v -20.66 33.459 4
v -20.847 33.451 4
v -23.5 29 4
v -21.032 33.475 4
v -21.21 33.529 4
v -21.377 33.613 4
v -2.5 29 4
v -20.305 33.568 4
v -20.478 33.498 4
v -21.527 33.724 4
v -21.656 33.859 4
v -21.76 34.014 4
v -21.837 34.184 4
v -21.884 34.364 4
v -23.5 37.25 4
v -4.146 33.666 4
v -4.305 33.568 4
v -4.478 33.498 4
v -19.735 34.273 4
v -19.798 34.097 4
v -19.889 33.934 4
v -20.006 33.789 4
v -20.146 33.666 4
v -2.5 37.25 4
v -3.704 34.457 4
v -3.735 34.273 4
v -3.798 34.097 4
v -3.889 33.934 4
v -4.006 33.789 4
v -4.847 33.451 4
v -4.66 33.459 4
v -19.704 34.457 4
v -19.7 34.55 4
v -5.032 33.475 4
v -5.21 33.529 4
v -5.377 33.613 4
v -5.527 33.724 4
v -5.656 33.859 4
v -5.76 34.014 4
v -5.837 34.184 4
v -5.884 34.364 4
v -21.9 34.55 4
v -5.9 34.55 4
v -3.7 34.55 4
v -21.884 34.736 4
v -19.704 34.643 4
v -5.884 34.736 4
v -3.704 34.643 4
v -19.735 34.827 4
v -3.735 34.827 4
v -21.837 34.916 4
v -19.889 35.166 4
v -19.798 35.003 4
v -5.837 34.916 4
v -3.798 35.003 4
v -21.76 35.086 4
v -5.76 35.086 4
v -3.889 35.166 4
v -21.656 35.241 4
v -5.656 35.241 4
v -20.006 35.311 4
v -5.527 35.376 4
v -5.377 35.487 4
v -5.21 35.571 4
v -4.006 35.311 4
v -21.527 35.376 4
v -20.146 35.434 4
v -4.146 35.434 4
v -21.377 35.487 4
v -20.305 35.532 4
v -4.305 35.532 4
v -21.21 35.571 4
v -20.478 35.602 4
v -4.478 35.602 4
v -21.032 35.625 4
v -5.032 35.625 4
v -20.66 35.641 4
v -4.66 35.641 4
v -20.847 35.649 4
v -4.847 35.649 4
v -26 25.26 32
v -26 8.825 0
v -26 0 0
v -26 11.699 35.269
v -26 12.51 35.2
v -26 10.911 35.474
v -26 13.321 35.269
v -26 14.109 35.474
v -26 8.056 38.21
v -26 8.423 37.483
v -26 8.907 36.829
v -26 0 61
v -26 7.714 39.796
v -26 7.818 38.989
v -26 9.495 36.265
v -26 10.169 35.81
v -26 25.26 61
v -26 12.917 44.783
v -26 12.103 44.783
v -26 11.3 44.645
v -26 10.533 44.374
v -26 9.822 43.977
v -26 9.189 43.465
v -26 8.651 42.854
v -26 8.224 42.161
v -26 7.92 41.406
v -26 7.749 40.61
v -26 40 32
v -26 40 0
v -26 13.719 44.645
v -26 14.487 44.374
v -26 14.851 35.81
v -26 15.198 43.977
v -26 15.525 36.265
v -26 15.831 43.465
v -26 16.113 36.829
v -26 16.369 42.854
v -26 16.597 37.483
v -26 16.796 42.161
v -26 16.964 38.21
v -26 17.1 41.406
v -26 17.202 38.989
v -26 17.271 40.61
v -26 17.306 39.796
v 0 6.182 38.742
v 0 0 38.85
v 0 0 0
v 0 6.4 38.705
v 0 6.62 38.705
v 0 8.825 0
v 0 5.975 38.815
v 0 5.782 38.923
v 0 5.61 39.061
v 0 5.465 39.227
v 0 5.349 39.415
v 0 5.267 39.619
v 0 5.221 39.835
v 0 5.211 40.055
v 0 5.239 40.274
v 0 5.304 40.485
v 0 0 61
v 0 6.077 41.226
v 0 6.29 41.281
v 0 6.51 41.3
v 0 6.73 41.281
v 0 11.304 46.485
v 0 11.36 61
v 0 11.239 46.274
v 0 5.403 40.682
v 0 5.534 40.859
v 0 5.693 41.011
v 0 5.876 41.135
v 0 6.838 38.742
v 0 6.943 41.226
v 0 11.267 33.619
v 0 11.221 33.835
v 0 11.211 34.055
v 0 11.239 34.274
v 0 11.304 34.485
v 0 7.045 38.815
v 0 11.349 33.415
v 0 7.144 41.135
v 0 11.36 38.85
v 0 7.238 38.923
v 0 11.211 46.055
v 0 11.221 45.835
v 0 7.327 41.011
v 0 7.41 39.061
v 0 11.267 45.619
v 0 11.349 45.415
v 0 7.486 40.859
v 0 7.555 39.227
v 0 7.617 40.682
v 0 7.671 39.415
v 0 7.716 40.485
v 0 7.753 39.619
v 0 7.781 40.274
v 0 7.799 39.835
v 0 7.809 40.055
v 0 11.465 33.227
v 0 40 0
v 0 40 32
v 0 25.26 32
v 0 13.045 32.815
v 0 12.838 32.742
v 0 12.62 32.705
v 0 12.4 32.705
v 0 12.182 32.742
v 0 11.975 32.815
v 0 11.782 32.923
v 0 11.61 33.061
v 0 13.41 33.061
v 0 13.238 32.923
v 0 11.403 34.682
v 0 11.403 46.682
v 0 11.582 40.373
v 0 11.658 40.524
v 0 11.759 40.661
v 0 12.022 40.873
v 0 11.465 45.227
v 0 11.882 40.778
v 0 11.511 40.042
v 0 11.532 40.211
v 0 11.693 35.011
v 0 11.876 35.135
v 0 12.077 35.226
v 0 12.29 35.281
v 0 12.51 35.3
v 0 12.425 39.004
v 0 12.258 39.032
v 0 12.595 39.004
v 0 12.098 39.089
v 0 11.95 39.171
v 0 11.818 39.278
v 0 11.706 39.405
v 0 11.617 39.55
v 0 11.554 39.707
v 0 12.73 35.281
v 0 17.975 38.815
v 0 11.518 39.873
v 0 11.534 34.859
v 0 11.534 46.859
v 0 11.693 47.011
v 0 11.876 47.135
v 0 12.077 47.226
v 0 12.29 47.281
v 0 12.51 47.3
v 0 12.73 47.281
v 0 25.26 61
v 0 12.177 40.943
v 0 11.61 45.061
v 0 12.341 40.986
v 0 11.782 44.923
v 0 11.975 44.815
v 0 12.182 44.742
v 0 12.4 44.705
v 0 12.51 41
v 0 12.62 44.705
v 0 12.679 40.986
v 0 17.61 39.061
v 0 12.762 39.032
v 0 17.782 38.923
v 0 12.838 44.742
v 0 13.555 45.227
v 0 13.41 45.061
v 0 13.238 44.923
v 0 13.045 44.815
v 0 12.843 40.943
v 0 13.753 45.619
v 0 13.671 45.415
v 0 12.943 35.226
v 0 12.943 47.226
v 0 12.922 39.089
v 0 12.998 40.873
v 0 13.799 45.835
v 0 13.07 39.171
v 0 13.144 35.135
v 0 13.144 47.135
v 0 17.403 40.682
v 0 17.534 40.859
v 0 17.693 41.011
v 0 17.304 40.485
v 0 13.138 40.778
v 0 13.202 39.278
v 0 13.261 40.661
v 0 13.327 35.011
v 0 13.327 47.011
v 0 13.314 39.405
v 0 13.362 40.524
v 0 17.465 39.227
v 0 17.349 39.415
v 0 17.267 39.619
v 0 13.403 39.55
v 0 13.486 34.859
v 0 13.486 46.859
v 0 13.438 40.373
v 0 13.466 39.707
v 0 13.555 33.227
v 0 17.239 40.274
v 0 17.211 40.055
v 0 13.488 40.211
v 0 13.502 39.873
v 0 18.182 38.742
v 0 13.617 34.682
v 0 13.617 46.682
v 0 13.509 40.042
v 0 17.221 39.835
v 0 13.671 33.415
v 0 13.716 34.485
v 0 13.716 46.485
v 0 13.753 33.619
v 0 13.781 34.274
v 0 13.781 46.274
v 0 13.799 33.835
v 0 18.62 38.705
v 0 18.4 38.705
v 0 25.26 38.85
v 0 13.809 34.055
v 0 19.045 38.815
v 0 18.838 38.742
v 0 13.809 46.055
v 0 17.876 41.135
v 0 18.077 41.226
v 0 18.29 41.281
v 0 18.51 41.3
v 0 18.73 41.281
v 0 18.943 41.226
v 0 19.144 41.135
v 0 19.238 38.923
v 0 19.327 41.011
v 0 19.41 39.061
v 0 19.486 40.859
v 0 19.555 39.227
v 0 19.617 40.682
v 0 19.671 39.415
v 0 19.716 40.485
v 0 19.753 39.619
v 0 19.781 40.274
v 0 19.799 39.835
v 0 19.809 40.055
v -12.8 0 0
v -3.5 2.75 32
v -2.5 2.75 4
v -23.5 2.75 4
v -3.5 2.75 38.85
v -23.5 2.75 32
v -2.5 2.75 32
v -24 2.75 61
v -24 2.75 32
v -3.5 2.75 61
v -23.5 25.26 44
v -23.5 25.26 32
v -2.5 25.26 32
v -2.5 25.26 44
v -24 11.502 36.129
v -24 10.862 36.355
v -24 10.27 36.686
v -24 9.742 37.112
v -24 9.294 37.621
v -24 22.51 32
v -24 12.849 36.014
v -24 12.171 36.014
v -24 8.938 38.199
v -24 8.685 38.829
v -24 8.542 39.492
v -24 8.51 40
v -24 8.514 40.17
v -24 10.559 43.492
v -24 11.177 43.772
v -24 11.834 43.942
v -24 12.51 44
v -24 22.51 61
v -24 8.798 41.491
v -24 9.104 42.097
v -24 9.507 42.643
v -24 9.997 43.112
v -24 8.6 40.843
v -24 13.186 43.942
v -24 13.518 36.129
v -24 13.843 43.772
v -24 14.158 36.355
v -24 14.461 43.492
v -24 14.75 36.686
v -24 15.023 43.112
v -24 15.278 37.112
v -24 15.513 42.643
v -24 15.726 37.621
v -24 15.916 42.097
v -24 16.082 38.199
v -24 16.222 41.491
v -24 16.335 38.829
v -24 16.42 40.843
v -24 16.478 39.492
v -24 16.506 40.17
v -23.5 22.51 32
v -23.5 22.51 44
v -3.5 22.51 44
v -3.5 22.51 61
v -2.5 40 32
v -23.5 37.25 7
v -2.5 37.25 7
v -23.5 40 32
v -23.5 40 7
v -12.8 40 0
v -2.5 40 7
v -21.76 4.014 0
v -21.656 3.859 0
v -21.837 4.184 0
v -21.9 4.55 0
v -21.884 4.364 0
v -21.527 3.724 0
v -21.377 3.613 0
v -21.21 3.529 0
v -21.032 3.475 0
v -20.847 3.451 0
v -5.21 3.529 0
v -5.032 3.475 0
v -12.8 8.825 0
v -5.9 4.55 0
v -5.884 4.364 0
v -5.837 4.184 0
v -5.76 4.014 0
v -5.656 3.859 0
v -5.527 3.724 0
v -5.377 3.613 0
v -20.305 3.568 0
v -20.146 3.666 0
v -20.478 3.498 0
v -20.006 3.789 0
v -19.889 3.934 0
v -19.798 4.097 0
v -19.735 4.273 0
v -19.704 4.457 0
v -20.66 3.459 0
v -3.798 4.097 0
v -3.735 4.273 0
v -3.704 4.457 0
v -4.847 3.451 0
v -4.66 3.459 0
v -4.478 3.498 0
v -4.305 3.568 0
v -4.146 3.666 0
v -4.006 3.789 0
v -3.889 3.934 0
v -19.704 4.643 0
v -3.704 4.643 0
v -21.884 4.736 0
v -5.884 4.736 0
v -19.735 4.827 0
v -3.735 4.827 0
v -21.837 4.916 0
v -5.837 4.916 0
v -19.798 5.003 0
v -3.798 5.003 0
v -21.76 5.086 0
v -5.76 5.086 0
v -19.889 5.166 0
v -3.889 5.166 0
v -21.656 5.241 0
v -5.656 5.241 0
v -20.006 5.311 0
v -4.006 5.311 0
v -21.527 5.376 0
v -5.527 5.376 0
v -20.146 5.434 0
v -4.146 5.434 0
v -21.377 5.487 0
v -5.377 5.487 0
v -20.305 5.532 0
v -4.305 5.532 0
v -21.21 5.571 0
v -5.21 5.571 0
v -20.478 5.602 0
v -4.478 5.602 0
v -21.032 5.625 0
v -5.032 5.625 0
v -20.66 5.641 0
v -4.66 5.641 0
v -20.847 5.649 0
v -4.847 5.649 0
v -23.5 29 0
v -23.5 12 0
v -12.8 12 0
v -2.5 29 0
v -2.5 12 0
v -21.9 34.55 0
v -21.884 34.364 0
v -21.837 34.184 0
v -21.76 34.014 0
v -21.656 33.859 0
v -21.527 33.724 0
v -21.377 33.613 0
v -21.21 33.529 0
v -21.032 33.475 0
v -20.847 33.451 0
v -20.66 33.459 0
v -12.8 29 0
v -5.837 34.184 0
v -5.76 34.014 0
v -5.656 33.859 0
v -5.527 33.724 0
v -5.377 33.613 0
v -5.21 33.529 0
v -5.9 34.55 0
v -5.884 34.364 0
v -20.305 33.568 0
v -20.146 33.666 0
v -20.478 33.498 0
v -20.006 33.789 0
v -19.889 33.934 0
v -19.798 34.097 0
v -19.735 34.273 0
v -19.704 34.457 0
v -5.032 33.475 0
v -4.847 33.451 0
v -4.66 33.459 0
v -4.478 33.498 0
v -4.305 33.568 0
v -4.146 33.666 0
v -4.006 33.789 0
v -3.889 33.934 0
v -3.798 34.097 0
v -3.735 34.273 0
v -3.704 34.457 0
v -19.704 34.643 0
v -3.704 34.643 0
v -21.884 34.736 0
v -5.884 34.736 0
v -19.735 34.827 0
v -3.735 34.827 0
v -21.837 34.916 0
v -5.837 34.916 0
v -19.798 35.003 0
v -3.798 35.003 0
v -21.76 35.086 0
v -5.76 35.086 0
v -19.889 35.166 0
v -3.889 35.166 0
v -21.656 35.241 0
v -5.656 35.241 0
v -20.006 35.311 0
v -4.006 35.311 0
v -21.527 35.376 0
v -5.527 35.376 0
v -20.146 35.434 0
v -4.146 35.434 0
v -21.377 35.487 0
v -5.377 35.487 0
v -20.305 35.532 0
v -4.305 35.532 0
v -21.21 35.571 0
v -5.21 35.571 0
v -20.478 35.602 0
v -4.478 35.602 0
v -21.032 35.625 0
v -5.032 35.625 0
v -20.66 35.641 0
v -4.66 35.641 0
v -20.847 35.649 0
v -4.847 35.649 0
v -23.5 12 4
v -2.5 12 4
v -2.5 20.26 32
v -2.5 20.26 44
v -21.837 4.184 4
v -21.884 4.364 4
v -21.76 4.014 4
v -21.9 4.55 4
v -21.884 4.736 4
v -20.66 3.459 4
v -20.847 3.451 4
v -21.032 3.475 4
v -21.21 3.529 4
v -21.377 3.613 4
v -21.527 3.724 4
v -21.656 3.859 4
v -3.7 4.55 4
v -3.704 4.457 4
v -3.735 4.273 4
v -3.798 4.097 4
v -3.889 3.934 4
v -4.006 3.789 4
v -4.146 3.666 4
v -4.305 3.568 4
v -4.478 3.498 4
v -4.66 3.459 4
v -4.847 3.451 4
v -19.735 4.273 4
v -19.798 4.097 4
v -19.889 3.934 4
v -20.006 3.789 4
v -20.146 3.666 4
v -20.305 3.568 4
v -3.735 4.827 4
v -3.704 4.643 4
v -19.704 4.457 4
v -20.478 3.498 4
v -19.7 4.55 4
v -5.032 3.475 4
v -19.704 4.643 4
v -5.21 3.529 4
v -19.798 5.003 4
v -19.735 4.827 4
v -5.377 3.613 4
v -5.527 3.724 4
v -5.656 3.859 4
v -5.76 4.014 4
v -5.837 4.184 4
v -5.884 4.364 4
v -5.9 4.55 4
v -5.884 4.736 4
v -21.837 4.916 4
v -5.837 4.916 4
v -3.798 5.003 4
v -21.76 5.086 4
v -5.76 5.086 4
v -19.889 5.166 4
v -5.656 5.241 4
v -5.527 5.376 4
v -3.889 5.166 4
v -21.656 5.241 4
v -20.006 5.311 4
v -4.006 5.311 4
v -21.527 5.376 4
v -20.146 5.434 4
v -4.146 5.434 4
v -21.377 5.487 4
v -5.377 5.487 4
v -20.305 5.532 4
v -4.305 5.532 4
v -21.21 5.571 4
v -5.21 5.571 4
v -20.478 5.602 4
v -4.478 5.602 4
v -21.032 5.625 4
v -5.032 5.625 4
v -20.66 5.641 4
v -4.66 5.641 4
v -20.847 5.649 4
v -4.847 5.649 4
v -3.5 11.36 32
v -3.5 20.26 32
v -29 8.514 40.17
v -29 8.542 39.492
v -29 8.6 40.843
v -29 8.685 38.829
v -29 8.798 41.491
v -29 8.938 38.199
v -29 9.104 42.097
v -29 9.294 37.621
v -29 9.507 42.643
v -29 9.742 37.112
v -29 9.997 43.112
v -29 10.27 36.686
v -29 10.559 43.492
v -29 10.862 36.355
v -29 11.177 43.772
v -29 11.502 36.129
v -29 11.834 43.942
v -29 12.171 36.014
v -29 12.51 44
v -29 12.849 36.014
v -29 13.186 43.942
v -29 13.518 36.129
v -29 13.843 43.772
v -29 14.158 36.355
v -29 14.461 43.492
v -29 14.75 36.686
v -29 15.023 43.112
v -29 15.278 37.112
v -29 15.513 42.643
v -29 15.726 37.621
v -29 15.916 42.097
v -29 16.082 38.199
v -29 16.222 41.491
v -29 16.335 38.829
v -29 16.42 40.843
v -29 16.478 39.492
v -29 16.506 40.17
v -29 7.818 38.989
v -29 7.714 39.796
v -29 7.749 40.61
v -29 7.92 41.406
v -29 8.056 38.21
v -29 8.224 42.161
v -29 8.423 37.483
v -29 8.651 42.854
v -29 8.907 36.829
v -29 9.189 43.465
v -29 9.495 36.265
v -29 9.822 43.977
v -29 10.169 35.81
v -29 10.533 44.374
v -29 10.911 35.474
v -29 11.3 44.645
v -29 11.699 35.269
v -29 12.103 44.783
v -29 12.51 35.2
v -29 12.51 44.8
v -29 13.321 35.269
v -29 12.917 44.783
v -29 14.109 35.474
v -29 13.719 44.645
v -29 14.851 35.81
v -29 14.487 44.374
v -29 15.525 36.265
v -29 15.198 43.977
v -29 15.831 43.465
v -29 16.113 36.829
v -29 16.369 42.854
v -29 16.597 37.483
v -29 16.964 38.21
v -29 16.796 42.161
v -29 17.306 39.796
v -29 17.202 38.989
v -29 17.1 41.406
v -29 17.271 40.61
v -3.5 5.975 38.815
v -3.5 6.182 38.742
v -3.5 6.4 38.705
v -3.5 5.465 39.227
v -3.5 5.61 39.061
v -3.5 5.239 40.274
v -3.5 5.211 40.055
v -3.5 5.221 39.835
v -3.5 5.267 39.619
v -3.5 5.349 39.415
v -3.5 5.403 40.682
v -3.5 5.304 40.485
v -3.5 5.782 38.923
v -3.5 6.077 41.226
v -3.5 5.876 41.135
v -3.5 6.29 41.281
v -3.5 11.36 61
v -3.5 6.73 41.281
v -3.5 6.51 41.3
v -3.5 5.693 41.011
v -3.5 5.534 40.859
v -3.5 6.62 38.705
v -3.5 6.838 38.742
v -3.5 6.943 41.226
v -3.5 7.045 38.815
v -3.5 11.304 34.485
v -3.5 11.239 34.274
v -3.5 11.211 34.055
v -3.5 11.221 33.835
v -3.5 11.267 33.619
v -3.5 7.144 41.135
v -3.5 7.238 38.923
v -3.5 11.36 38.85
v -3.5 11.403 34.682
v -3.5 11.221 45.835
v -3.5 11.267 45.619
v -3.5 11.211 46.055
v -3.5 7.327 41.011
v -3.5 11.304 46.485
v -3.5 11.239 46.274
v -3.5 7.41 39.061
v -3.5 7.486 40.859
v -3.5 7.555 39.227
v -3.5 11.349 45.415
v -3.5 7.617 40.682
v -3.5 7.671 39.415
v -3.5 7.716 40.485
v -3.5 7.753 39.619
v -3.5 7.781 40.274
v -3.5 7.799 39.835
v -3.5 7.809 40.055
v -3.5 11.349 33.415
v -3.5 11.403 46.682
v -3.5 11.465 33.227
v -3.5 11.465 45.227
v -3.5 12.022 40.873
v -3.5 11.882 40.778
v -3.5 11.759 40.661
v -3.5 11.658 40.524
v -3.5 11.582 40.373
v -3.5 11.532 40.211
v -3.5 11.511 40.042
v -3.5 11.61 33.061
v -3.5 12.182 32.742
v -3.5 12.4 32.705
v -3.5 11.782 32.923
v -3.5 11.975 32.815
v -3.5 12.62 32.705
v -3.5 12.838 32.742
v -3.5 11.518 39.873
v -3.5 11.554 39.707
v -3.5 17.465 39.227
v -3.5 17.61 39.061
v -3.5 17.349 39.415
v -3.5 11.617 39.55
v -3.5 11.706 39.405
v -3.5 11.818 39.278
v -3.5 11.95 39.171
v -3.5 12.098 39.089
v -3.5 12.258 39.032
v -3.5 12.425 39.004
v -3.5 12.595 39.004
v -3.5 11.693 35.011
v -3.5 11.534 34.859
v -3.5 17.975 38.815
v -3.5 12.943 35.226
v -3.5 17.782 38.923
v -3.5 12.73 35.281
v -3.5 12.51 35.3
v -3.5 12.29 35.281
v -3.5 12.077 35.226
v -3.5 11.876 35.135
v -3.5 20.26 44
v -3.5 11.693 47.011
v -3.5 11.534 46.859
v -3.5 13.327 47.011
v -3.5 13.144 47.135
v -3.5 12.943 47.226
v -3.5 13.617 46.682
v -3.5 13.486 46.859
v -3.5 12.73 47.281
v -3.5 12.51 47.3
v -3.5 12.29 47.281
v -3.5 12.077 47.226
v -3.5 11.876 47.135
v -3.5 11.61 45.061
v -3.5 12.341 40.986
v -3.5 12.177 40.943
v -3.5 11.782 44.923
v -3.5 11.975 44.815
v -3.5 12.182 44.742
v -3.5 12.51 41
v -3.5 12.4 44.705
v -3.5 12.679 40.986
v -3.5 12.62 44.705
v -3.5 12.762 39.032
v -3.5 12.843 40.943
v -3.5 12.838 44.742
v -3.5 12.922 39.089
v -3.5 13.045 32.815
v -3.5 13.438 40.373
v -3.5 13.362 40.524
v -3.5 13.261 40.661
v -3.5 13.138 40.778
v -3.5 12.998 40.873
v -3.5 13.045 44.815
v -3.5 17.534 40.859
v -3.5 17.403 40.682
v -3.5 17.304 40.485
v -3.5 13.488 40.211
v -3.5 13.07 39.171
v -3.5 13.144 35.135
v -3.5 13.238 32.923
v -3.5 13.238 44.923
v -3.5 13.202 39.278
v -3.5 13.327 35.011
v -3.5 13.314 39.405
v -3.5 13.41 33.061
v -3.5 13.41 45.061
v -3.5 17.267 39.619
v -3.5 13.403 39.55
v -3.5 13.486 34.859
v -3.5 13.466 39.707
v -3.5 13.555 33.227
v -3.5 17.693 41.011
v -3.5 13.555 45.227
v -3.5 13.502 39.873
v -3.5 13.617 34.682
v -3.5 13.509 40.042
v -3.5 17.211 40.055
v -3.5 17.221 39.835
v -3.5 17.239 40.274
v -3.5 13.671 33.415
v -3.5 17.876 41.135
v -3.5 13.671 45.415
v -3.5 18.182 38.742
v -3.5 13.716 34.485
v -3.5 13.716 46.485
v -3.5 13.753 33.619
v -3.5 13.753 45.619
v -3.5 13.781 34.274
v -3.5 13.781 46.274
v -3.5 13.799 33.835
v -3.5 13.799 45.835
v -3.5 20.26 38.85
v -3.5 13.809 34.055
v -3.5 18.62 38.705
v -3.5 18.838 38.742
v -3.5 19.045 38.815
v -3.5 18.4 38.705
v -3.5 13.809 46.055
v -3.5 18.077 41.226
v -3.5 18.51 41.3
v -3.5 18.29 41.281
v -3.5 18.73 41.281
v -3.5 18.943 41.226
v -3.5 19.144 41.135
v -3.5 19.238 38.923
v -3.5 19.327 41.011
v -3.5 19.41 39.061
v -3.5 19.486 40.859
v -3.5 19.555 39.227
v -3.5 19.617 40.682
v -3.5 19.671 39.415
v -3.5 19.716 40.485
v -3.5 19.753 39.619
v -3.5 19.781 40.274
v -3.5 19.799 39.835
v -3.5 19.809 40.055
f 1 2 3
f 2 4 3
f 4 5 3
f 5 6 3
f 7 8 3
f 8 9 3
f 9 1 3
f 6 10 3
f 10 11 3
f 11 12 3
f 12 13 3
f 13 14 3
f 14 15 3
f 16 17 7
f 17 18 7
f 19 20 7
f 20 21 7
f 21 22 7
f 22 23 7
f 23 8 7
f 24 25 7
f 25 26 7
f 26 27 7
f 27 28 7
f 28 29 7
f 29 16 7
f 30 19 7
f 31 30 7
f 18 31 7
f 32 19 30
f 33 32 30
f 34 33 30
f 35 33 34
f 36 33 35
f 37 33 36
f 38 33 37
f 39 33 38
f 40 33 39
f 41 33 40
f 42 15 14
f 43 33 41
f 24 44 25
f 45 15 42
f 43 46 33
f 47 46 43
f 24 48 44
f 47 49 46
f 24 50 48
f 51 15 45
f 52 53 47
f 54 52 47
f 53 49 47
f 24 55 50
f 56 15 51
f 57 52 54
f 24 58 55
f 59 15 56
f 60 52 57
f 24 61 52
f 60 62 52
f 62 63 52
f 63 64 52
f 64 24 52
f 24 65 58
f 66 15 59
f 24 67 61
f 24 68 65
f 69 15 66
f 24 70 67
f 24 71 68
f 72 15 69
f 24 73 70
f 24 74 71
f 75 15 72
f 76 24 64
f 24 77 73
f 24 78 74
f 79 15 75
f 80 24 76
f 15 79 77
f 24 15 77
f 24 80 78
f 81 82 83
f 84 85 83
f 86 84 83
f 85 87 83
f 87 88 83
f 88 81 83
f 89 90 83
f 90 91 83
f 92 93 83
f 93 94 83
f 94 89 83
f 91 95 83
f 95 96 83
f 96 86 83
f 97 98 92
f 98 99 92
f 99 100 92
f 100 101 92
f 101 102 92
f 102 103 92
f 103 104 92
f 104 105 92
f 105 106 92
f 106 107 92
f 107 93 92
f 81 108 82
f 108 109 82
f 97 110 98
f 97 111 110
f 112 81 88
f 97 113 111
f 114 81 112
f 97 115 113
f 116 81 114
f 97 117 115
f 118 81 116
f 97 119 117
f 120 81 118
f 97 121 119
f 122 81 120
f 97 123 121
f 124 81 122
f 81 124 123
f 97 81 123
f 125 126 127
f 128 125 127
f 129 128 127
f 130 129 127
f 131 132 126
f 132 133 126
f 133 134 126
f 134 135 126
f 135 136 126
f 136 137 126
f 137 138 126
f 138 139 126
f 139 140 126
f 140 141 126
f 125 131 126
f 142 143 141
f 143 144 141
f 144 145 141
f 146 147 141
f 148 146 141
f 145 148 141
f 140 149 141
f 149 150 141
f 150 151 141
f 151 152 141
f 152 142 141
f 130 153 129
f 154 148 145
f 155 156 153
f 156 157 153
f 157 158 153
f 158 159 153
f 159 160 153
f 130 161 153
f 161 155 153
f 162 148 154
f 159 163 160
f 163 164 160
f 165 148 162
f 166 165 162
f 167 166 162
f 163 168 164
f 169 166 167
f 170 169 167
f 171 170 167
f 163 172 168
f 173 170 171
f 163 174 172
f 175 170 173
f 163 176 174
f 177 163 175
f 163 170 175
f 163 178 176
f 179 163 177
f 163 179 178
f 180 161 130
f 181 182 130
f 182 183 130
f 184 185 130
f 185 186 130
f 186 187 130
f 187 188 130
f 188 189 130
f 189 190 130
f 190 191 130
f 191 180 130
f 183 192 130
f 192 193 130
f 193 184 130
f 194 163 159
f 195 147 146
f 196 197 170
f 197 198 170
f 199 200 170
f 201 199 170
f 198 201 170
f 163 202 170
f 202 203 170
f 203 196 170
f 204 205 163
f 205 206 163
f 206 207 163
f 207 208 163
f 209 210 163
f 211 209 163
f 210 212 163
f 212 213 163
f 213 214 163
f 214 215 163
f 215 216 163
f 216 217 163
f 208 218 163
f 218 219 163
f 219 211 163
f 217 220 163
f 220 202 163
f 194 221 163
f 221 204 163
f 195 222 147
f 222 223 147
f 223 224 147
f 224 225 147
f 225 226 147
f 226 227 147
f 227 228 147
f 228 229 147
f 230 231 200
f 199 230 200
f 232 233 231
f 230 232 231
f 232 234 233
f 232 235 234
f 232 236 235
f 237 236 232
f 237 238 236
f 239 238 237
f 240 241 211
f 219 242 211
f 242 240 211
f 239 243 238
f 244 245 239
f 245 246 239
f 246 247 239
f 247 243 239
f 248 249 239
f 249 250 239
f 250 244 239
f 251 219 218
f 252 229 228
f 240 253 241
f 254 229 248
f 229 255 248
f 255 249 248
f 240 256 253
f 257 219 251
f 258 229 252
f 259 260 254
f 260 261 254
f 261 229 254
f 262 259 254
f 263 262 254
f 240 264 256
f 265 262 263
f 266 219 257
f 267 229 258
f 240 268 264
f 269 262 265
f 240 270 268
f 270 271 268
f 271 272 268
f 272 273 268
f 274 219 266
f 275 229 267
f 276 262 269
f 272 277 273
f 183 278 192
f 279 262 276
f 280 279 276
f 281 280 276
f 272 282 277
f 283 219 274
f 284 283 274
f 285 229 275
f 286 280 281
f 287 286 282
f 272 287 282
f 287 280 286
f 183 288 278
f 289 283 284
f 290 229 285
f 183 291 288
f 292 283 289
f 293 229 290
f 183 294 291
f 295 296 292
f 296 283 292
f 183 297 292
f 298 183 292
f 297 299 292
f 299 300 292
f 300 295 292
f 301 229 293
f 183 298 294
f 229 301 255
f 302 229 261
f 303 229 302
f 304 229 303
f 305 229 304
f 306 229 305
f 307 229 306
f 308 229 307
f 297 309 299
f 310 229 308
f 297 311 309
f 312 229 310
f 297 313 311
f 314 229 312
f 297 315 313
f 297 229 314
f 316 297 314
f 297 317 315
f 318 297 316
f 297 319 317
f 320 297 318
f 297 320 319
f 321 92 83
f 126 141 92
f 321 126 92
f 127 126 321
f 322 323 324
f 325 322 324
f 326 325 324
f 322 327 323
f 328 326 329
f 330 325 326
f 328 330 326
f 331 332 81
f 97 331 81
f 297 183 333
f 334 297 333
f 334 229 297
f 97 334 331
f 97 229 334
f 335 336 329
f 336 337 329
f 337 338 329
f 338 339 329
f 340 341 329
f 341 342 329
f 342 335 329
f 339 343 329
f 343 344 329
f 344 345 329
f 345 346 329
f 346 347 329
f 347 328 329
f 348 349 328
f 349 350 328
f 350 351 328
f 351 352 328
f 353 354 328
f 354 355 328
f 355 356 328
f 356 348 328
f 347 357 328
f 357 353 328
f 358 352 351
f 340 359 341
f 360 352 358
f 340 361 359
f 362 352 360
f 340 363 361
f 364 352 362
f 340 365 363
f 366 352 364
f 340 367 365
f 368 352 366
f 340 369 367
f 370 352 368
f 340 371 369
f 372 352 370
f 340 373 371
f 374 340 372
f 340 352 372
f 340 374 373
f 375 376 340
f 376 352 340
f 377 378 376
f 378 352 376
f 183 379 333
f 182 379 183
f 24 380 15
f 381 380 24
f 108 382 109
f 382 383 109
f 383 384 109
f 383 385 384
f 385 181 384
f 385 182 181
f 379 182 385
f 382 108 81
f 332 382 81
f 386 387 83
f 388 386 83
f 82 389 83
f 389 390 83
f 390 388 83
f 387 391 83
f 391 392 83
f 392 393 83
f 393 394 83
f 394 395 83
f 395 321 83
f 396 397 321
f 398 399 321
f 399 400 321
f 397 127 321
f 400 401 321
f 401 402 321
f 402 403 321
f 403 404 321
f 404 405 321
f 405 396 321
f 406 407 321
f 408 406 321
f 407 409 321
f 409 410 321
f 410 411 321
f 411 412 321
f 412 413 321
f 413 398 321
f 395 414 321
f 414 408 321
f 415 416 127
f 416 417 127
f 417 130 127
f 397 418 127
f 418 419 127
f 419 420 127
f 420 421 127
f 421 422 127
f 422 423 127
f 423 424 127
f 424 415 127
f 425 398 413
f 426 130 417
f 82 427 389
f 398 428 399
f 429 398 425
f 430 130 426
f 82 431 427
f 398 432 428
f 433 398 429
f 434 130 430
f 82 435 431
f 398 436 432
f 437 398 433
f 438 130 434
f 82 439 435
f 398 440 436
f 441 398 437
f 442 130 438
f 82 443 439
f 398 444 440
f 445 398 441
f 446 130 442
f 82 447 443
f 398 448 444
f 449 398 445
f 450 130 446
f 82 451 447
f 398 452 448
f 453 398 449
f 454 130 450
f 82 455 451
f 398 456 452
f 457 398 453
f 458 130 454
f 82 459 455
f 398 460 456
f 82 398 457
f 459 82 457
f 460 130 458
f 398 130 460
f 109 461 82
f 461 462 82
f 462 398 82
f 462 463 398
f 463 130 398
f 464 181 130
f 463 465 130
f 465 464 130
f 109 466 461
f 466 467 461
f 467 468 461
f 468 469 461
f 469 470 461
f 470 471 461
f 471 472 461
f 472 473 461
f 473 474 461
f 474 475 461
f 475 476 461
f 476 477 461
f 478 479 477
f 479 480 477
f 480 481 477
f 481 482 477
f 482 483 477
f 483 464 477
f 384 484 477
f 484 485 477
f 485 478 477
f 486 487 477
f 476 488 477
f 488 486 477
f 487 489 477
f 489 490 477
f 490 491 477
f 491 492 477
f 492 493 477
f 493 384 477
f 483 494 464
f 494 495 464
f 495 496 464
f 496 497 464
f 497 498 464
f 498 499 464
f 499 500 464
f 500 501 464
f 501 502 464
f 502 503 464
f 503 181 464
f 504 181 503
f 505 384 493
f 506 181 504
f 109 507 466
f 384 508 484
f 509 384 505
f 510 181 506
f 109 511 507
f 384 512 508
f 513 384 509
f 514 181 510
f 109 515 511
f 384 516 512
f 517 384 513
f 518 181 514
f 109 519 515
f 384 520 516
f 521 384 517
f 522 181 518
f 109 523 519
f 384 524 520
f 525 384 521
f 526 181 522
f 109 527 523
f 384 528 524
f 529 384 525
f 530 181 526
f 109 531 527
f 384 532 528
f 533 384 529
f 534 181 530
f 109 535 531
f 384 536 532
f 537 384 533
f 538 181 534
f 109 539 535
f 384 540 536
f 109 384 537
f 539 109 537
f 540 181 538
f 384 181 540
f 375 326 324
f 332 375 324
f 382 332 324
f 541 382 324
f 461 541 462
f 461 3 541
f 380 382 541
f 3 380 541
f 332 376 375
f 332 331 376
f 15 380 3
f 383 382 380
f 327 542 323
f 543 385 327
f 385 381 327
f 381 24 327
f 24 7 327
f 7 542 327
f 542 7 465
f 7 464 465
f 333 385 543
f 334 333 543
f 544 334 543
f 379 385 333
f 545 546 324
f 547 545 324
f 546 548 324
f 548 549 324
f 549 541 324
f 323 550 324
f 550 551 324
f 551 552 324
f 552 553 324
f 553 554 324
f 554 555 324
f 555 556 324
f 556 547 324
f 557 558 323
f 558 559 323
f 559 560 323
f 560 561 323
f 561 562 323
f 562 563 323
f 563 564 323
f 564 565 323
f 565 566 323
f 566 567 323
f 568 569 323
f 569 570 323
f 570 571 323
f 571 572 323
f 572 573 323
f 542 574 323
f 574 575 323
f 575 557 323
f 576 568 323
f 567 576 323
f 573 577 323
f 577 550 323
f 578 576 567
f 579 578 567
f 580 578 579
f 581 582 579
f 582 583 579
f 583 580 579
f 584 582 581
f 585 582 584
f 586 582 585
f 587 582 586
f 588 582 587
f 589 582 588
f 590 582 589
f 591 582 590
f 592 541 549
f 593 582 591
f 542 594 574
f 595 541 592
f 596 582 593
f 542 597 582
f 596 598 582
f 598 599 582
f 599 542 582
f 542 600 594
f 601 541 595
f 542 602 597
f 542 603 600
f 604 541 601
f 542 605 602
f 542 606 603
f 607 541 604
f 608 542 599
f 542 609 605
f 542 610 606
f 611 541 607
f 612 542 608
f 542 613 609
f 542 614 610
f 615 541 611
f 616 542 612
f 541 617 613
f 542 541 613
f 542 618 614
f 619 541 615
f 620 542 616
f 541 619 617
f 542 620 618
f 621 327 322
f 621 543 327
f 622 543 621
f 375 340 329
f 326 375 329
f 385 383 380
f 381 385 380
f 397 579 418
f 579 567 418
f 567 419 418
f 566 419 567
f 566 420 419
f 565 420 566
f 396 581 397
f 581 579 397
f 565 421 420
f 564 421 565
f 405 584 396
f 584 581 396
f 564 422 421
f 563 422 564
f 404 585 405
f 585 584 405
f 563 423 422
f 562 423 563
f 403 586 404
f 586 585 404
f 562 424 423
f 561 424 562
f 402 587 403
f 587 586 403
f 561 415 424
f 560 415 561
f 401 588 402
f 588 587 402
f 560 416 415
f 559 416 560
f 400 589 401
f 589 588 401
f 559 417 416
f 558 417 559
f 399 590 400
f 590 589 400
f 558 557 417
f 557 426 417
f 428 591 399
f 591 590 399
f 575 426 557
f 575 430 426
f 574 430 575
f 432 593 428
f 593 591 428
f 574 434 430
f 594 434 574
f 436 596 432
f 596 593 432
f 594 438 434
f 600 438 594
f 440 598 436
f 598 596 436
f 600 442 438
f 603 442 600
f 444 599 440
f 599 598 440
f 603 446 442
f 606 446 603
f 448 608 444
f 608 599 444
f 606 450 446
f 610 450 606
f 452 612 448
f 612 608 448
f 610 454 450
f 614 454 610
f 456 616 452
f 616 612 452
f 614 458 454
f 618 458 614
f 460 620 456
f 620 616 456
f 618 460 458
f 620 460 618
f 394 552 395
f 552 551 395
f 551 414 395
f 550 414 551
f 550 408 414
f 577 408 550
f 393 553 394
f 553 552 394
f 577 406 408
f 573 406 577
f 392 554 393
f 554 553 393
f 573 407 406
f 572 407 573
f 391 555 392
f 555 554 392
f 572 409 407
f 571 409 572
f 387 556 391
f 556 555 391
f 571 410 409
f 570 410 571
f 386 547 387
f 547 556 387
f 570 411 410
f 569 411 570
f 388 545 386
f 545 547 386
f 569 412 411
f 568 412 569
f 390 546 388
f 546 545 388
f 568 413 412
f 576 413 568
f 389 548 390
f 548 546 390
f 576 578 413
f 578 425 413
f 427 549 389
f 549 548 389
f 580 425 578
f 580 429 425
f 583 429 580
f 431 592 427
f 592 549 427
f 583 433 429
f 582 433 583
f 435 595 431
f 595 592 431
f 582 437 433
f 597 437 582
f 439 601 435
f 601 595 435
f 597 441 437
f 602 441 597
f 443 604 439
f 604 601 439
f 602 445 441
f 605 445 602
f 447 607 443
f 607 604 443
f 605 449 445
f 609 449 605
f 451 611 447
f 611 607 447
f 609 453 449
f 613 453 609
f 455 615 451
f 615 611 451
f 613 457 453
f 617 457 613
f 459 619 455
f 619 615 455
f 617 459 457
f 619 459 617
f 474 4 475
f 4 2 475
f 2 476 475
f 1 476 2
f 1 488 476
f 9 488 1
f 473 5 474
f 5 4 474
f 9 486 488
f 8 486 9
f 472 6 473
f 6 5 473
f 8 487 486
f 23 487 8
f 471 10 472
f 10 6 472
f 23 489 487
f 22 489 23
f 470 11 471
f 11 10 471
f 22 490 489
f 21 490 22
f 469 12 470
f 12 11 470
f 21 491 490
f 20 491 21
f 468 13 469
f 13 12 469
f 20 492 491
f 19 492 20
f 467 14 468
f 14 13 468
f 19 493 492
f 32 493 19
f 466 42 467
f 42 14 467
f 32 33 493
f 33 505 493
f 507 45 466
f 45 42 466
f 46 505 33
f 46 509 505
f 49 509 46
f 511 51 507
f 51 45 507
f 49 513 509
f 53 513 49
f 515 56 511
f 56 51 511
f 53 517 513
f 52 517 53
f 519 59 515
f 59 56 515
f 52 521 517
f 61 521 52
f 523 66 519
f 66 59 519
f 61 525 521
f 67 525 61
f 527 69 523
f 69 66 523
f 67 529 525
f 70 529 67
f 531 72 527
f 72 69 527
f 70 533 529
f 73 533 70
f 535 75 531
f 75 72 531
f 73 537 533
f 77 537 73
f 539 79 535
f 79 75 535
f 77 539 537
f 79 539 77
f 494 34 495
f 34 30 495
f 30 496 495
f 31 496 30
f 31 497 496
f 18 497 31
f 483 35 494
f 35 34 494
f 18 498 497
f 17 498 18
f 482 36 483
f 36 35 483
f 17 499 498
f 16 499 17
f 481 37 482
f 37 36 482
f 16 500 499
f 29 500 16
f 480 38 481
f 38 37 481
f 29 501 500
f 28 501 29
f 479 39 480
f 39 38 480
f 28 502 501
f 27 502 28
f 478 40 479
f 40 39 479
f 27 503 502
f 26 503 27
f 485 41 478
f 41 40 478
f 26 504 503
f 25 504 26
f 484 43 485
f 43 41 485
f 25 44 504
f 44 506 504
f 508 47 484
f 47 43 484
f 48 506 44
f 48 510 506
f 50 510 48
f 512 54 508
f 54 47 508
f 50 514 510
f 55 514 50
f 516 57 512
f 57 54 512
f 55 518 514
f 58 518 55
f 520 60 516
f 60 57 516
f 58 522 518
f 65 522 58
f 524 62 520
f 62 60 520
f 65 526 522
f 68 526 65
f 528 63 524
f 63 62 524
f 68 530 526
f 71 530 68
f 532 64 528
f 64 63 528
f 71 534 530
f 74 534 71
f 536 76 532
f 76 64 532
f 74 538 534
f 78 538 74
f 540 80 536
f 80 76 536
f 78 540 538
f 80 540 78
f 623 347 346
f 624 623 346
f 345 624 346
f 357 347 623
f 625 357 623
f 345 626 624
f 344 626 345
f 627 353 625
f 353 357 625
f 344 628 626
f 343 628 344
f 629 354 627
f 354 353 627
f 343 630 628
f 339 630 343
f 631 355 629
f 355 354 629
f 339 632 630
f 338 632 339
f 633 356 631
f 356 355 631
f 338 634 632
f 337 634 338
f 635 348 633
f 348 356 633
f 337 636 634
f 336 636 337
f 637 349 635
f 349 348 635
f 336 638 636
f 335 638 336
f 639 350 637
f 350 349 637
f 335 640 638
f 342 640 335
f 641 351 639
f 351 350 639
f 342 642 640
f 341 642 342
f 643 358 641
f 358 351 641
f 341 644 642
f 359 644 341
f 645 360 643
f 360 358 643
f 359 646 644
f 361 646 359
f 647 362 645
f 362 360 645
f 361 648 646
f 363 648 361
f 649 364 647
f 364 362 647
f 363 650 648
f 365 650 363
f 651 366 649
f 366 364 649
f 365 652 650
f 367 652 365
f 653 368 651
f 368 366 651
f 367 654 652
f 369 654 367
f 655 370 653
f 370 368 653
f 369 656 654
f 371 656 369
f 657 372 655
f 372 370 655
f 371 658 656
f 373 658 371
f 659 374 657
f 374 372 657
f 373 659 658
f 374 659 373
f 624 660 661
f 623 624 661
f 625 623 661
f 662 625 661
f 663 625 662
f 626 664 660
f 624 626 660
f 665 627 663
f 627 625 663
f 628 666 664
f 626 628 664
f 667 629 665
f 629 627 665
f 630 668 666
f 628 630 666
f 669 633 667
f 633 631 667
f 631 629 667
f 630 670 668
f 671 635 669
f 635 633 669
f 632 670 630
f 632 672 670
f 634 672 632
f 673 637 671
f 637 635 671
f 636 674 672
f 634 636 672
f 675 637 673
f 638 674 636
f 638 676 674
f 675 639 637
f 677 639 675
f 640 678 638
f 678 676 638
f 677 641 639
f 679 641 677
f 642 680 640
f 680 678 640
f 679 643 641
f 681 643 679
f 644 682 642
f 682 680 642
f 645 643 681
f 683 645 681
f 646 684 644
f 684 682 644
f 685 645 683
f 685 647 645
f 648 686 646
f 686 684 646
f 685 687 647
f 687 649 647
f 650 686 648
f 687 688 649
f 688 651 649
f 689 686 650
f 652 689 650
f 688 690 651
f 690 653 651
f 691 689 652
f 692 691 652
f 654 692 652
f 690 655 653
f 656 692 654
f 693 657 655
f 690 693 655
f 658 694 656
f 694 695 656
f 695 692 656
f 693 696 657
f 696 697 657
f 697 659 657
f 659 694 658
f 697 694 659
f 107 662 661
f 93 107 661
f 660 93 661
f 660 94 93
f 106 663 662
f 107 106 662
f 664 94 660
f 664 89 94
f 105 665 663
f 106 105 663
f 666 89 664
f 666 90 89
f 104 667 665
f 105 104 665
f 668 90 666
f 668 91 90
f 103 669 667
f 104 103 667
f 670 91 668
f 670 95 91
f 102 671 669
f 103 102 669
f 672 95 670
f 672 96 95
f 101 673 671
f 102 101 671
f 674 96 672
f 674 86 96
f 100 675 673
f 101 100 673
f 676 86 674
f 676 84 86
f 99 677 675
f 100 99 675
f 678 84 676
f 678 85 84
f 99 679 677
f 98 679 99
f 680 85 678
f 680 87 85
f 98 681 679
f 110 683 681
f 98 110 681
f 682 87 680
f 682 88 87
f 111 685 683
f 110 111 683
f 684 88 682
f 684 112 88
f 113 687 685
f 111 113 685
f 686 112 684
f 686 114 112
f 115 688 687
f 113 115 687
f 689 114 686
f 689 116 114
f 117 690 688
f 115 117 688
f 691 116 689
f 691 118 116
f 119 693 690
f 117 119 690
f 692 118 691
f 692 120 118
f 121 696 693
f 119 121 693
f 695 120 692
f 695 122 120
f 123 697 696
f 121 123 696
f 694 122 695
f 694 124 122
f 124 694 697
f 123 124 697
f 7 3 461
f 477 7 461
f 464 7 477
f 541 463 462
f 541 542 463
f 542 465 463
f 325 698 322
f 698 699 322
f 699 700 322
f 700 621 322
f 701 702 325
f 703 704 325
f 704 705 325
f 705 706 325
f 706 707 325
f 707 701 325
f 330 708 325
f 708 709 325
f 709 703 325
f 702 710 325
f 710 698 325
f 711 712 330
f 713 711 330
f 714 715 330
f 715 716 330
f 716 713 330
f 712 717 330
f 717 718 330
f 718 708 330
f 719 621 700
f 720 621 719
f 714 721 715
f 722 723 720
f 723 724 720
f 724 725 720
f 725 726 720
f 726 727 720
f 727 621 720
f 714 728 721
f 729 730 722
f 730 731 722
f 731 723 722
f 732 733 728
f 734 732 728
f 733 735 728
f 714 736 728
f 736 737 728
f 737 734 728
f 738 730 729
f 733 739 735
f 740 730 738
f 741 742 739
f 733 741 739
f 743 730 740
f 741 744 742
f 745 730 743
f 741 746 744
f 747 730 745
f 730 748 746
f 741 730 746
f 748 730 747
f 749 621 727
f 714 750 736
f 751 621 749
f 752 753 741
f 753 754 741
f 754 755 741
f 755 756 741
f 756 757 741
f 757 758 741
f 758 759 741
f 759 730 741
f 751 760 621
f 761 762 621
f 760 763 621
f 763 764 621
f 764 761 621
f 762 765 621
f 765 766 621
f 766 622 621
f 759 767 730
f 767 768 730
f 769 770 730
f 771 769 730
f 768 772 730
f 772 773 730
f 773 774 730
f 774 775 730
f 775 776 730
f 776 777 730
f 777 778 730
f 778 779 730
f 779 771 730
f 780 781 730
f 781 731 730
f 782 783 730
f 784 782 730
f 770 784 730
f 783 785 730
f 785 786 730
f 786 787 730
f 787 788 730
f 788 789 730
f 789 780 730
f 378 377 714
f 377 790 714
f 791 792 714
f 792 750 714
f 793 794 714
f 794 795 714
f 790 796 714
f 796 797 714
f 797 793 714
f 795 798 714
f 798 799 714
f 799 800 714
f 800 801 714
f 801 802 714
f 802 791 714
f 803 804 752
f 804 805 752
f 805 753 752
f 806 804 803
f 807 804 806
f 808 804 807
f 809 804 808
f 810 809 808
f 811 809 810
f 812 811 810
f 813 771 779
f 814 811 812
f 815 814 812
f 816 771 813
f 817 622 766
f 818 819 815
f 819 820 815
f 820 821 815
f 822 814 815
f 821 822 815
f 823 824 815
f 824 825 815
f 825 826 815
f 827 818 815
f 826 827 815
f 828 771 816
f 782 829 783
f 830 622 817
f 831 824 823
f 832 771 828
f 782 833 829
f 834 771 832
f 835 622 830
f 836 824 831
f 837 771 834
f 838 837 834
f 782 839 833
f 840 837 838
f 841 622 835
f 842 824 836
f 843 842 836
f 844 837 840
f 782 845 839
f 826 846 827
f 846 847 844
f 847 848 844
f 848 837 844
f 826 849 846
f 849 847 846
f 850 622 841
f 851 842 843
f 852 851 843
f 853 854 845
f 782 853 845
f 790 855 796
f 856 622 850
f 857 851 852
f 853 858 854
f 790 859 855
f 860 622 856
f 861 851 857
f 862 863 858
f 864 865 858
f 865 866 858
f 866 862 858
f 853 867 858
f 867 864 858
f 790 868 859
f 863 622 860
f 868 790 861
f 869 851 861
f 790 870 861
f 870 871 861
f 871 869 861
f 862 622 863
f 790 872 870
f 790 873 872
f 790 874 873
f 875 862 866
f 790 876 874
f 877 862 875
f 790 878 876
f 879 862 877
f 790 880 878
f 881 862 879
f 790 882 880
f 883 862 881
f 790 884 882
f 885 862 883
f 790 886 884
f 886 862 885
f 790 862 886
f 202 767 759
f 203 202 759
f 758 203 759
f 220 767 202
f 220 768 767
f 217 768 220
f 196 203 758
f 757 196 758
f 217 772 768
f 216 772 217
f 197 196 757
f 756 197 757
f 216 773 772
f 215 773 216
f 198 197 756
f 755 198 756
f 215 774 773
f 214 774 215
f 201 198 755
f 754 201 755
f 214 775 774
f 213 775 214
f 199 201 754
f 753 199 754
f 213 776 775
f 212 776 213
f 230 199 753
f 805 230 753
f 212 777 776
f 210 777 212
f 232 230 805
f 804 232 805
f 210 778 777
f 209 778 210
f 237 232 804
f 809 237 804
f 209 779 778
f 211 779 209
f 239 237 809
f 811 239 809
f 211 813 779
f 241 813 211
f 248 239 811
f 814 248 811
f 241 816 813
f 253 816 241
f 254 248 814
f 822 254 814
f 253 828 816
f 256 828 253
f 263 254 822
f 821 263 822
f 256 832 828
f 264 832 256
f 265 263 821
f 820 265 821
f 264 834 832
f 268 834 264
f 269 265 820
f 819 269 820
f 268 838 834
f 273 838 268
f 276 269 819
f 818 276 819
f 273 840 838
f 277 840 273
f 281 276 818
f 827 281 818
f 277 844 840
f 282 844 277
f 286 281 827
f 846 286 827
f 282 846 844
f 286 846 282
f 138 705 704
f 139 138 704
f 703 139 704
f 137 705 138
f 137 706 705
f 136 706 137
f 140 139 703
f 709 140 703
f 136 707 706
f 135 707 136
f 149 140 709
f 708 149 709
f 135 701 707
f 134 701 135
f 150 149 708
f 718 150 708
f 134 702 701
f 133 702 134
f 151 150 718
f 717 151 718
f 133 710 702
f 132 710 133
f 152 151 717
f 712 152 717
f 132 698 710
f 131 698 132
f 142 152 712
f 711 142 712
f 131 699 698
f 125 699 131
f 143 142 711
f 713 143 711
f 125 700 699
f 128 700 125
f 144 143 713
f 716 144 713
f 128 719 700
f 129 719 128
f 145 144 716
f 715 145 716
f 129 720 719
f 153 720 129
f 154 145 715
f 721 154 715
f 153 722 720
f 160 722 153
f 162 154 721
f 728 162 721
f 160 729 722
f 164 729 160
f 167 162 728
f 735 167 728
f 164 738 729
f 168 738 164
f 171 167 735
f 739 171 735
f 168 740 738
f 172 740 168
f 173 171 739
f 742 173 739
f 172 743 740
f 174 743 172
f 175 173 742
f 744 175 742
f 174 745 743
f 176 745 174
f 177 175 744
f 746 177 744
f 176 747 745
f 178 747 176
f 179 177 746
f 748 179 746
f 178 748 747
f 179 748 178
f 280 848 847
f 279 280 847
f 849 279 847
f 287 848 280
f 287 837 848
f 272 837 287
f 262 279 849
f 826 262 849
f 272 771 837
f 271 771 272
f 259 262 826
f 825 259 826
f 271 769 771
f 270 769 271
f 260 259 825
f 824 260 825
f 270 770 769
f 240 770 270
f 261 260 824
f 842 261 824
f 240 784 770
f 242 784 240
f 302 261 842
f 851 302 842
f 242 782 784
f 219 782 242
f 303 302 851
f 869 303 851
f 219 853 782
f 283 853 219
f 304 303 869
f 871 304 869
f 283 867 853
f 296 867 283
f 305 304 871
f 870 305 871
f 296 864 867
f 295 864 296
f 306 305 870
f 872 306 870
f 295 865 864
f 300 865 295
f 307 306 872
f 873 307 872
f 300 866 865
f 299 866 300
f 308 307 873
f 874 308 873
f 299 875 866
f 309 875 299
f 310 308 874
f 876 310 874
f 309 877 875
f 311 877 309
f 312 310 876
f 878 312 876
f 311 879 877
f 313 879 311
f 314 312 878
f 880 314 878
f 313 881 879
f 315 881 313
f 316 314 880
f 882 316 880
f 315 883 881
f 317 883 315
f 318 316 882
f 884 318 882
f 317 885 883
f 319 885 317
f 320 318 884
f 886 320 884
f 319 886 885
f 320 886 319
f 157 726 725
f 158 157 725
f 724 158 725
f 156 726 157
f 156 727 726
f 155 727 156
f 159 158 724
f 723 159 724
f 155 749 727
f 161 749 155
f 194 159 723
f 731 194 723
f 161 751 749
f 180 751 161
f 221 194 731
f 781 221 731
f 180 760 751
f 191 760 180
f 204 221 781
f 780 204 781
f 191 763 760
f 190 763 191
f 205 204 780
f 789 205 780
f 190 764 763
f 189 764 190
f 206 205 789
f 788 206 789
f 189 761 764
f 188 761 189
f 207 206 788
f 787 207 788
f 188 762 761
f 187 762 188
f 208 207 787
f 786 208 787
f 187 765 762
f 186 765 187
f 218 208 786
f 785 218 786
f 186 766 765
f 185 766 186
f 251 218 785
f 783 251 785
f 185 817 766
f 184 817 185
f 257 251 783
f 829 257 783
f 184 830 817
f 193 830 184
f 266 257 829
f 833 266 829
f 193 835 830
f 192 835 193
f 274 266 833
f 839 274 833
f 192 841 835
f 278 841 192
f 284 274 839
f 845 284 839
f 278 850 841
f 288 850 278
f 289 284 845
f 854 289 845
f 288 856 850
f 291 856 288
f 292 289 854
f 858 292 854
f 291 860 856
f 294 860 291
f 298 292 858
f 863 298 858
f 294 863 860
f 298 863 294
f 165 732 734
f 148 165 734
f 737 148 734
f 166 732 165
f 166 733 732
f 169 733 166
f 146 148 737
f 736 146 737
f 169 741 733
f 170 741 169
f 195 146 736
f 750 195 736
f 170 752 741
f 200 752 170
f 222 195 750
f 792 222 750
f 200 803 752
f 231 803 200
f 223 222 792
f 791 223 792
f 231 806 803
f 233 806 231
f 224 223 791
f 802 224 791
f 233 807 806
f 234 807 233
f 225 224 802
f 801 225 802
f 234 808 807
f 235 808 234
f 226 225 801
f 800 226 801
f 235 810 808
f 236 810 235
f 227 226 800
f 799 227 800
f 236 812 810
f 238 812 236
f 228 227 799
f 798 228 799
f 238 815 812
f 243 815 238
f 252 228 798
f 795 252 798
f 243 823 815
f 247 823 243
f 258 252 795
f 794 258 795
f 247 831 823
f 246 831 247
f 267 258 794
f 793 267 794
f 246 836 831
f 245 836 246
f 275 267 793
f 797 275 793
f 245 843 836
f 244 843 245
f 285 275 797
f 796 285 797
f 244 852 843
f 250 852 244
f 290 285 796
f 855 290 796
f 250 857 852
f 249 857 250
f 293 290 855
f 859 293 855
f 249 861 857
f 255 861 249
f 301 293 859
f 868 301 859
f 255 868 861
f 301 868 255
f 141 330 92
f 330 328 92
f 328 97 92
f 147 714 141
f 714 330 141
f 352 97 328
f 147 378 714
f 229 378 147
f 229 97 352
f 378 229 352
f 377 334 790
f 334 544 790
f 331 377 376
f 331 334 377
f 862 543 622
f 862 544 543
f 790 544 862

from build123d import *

# Parameters (mm, degrees)
SKETCH1_W               = 26
SKETCH1_H               = 40
BOSS_EXTRUDE1_DEPTH     = 32
SKETCH2_W               = 21
SKETCH2_H               = 34.5
CUT_EXTRUDE1_DEPTH      = 28
SKETCH3_W               = 26
SKETCH3_H               = 25.26
BOSS_EXTRUDE2_DEPTH     = 20
SKETCH4_W               = 22
SKETCH4_H               = 19.76
CUT_EXTRUDE2_DEPTH      = 20
SKETCH5_W               = 21
SKETCH5_H               = 2.75
CUT_EXTRUDE3_DEPTH      = 25
SKETCH6_R               = 1.1
CUT_EXTRUDE4_DEPTH      = 20
SKETCH7_R               = 4
CUT_EXTRUDE5_DEPTH      = 5
SKETCH9_W               = 26
SKETCH9_H               = 25.26
CUT_EXTRUDE9_DEPTH      = 3
SKETCH10_R              = 4.8
SKETCH10_R_2            = 4
BOSS_EXTRUDE3_DEPTH     = 3
CUT_EXTRUDE10_DEPTH     = 5
SKETCH14_W              = 1.5
SKETCH14_H              = 19.76
BOSS_EXTRUDE5_DEPTH     = 17
SKETCH8_R               = 1
SKETCH8_R_2             = 1.3
CUT_EXTRUDE8_DEPTH      = 17
CUT_EXTRUDE8_DEPTH_BACK = 15
SKETCH17_W              = 26
SKETCH17_H              = 25.26
SKETCH17_W_2            = 20.5
SKETCH17_H_2            = 19.76
BOSS_EXTRUDE12_DEPTH    = 12
SKETCH18_W              = 21
SKETCH18_H              = 12
CUT_EXTRUDE11_DEPTH     = 5


with BuildPart() as part:
    # Sketch1 → Boss-Extrude1 (new body)
    with BuildSketch(Plane.XY):
        with Locations((-13, 20)):
            Rectangle(SKETCH1_W, SKETCH1_H)
    extrude(amount=BOSS_EXTRUDE1_DEPTH)

    # Sketch2 → Cut-Extrude1 (cut)
    with BuildSketch(Plane.XY.offset(32)):
        with Locations((-13, 20)):
            Rectangle(SKETCH2_W, SKETCH2_H)
    extrude(amount=-CUT_EXTRUDE1_DEPTH, mode=Mode.SUBTRACT)

    # Sketch3 → Boss-Extrude2 (add)
    with BuildSketch(Plane.XY.offset(32)):
        with Locations((-13, 12.63)):
            Rectangle(SKETCH3_W, SKETCH3_H)
    extrude(amount=BOSS_EXTRUDE2_DEPTH)

    # Sketch4 → Cut-Extrude2 (cut)
    with BuildSketch(Plane.XY.offset(52)):
        with Locations((-13, 12.63)):
            Rectangle(SKETCH4_W, SKETCH4_H)
    extrude(amount=-CUT_EXTRUDE2_DEPTH, mode=Mode.SUBTRACT)

    # Sketch5 → Cut-Extrude3 (cut)
    with BuildSketch(Plane.XY.offset(32)):
        with Locations((-13, 38.625)):
            Rectangle(SKETCH5_W, SKETCH5_H)
    extrude(amount=-CUT_EXTRUDE3_DEPTH, mode=Mode.SUBTRACT)

    # Sketch6 → Cut-Extrude4 (cut)
    with BuildSketch(Plane(origin=(0, 0, 0), x_dir=(-1, 0, 0), z_dir=(0, 0, -1))):
        with Locations((4.8, 4.55)):
            Circle(SKETCH6_R)
        with Locations((20.8, 4.55)):
            Circle(SKETCH6_R)
        with Locations((20.8, 34.55)):
            Circle(SKETCH6_R)
        with Locations((4.8, 34.55)):
            Circle(SKETCH6_R)
    extrude(amount=-CUT_EXTRUDE4_DEPTH, mode=Mode.SUBTRACT)

    # Sketch7 → Cut-Extrude5 (cut)
    with BuildSketch(Plane.ZY.offset(26)):
        with Locations((40, 12.51)):
            Circle(SKETCH7_R)
    extrude(amount=-CUT_EXTRUDE5_DEPTH, mode=Mode.SUBTRACT)

    # Sketch9 → Cut-Extrude9 (cut)
    with BuildSketch(Plane.XY.offset(52)):
        with Locations((-13, 12.63)):
            Rectangle(SKETCH9_W, SKETCH9_H)
    extrude(amount=-CUT_EXTRUDE9_DEPTH, mode=Mode.SUBTRACT)

    # Sketch10 → Boss-Extrude3 (add)
    with BuildSketch(Plane.ZY.offset(26)):
        with Locations((40, 12.51)):
            Circle(SKETCH10_R)
        with Locations((40, 12.51)):
            Circle(SKETCH10_R_2, mode=Mode.SUBTRACT)
    extrude(amount=BOSS_EXTRUDE3_DEPTH)

    # Sketch13 → Cut-Extrude10 (cut, through all)
    with BuildSketch(Plane.XY.offset(4)):
        Polygon((-23.5, 20), (-23.5, 12), (-2.5, 12), (-2.5, 29), (-23.5, 29), align=None)
    extrude(amount=-CUT_EXTRUDE10_DEPTH, mode=Mode.SUBTRACT)

    # Sketch14 → Boss-Extrude5 (add)
    with BuildSketch(Plane.XY.offset(49)):
        with Locations((-2.75, 12.63)):
            Rectangle(SKETCH14_W, SKETCH14_H)
    extrude(amount=-BOSS_EXTRUDE5_DEPTH)

    # Sketch8 → Cut-Extrude8 (cut, two sides)
    with BuildSketch(Plane(origin=(0, 0, 0), x_dir=(0, 0, -1), z_dir=(1, 0, 0))) as cut_extrude8_sk:
        with Locations((-40, 12.51)):
            Circle(SKETCH8_R)
        with Locations((-46, 12.51)):
            Circle(SKETCH8_R_2)
        with Locations((-34, 12.51)):
            Circle(SKETCH8_R_2)
        with Locations((-40, 18.51)):
            Circle(SKETCH8_R_2)
        with Locations((-40, 6.51)):
            Circle(SKETCH8_R_2)
    extrude(amount=CUT_EXTRUDE8_DEPTH, mode=Mode.SUBTRACT)
    extrude(cut_extrude8_sk.sketch, amount=-CUT_EXTRUDE8_DEPTH_BACK, mode=Mode.SUBTRACT)

    # Sketch17 → Boss-Extrude12 (add)
    with BuildSketch(Plane.XY.offset(49)):
        with Locations((-13, 12.63)):
            Rectangle(SKETCH17_W, SKETCH17_H)
        with Locations((-13.75, 12.63)):
            Rectangle(SKETCH17_W_2, SKETCH17_H_2, mode=Mode.SUBTRACT)
    extrude(amount=BOSS_EXTRUDE12_DEPTH)

    # Sketch18 → Cut-Extrude11 (cut)
    with BuildSketch(Plane(origin=(0, 25.26, 0), x_dir=(1, 0, 0), z_dir=(0, 1, 0))):
        with Locations((-13, -38)):
            Rectangle(SKETCH18_W, SKETCH18_H)
    extrude(amount=-CUT_EXTRUDE11_DEPTH, mode=Mode.SUBTRACT)


solid = part.part
